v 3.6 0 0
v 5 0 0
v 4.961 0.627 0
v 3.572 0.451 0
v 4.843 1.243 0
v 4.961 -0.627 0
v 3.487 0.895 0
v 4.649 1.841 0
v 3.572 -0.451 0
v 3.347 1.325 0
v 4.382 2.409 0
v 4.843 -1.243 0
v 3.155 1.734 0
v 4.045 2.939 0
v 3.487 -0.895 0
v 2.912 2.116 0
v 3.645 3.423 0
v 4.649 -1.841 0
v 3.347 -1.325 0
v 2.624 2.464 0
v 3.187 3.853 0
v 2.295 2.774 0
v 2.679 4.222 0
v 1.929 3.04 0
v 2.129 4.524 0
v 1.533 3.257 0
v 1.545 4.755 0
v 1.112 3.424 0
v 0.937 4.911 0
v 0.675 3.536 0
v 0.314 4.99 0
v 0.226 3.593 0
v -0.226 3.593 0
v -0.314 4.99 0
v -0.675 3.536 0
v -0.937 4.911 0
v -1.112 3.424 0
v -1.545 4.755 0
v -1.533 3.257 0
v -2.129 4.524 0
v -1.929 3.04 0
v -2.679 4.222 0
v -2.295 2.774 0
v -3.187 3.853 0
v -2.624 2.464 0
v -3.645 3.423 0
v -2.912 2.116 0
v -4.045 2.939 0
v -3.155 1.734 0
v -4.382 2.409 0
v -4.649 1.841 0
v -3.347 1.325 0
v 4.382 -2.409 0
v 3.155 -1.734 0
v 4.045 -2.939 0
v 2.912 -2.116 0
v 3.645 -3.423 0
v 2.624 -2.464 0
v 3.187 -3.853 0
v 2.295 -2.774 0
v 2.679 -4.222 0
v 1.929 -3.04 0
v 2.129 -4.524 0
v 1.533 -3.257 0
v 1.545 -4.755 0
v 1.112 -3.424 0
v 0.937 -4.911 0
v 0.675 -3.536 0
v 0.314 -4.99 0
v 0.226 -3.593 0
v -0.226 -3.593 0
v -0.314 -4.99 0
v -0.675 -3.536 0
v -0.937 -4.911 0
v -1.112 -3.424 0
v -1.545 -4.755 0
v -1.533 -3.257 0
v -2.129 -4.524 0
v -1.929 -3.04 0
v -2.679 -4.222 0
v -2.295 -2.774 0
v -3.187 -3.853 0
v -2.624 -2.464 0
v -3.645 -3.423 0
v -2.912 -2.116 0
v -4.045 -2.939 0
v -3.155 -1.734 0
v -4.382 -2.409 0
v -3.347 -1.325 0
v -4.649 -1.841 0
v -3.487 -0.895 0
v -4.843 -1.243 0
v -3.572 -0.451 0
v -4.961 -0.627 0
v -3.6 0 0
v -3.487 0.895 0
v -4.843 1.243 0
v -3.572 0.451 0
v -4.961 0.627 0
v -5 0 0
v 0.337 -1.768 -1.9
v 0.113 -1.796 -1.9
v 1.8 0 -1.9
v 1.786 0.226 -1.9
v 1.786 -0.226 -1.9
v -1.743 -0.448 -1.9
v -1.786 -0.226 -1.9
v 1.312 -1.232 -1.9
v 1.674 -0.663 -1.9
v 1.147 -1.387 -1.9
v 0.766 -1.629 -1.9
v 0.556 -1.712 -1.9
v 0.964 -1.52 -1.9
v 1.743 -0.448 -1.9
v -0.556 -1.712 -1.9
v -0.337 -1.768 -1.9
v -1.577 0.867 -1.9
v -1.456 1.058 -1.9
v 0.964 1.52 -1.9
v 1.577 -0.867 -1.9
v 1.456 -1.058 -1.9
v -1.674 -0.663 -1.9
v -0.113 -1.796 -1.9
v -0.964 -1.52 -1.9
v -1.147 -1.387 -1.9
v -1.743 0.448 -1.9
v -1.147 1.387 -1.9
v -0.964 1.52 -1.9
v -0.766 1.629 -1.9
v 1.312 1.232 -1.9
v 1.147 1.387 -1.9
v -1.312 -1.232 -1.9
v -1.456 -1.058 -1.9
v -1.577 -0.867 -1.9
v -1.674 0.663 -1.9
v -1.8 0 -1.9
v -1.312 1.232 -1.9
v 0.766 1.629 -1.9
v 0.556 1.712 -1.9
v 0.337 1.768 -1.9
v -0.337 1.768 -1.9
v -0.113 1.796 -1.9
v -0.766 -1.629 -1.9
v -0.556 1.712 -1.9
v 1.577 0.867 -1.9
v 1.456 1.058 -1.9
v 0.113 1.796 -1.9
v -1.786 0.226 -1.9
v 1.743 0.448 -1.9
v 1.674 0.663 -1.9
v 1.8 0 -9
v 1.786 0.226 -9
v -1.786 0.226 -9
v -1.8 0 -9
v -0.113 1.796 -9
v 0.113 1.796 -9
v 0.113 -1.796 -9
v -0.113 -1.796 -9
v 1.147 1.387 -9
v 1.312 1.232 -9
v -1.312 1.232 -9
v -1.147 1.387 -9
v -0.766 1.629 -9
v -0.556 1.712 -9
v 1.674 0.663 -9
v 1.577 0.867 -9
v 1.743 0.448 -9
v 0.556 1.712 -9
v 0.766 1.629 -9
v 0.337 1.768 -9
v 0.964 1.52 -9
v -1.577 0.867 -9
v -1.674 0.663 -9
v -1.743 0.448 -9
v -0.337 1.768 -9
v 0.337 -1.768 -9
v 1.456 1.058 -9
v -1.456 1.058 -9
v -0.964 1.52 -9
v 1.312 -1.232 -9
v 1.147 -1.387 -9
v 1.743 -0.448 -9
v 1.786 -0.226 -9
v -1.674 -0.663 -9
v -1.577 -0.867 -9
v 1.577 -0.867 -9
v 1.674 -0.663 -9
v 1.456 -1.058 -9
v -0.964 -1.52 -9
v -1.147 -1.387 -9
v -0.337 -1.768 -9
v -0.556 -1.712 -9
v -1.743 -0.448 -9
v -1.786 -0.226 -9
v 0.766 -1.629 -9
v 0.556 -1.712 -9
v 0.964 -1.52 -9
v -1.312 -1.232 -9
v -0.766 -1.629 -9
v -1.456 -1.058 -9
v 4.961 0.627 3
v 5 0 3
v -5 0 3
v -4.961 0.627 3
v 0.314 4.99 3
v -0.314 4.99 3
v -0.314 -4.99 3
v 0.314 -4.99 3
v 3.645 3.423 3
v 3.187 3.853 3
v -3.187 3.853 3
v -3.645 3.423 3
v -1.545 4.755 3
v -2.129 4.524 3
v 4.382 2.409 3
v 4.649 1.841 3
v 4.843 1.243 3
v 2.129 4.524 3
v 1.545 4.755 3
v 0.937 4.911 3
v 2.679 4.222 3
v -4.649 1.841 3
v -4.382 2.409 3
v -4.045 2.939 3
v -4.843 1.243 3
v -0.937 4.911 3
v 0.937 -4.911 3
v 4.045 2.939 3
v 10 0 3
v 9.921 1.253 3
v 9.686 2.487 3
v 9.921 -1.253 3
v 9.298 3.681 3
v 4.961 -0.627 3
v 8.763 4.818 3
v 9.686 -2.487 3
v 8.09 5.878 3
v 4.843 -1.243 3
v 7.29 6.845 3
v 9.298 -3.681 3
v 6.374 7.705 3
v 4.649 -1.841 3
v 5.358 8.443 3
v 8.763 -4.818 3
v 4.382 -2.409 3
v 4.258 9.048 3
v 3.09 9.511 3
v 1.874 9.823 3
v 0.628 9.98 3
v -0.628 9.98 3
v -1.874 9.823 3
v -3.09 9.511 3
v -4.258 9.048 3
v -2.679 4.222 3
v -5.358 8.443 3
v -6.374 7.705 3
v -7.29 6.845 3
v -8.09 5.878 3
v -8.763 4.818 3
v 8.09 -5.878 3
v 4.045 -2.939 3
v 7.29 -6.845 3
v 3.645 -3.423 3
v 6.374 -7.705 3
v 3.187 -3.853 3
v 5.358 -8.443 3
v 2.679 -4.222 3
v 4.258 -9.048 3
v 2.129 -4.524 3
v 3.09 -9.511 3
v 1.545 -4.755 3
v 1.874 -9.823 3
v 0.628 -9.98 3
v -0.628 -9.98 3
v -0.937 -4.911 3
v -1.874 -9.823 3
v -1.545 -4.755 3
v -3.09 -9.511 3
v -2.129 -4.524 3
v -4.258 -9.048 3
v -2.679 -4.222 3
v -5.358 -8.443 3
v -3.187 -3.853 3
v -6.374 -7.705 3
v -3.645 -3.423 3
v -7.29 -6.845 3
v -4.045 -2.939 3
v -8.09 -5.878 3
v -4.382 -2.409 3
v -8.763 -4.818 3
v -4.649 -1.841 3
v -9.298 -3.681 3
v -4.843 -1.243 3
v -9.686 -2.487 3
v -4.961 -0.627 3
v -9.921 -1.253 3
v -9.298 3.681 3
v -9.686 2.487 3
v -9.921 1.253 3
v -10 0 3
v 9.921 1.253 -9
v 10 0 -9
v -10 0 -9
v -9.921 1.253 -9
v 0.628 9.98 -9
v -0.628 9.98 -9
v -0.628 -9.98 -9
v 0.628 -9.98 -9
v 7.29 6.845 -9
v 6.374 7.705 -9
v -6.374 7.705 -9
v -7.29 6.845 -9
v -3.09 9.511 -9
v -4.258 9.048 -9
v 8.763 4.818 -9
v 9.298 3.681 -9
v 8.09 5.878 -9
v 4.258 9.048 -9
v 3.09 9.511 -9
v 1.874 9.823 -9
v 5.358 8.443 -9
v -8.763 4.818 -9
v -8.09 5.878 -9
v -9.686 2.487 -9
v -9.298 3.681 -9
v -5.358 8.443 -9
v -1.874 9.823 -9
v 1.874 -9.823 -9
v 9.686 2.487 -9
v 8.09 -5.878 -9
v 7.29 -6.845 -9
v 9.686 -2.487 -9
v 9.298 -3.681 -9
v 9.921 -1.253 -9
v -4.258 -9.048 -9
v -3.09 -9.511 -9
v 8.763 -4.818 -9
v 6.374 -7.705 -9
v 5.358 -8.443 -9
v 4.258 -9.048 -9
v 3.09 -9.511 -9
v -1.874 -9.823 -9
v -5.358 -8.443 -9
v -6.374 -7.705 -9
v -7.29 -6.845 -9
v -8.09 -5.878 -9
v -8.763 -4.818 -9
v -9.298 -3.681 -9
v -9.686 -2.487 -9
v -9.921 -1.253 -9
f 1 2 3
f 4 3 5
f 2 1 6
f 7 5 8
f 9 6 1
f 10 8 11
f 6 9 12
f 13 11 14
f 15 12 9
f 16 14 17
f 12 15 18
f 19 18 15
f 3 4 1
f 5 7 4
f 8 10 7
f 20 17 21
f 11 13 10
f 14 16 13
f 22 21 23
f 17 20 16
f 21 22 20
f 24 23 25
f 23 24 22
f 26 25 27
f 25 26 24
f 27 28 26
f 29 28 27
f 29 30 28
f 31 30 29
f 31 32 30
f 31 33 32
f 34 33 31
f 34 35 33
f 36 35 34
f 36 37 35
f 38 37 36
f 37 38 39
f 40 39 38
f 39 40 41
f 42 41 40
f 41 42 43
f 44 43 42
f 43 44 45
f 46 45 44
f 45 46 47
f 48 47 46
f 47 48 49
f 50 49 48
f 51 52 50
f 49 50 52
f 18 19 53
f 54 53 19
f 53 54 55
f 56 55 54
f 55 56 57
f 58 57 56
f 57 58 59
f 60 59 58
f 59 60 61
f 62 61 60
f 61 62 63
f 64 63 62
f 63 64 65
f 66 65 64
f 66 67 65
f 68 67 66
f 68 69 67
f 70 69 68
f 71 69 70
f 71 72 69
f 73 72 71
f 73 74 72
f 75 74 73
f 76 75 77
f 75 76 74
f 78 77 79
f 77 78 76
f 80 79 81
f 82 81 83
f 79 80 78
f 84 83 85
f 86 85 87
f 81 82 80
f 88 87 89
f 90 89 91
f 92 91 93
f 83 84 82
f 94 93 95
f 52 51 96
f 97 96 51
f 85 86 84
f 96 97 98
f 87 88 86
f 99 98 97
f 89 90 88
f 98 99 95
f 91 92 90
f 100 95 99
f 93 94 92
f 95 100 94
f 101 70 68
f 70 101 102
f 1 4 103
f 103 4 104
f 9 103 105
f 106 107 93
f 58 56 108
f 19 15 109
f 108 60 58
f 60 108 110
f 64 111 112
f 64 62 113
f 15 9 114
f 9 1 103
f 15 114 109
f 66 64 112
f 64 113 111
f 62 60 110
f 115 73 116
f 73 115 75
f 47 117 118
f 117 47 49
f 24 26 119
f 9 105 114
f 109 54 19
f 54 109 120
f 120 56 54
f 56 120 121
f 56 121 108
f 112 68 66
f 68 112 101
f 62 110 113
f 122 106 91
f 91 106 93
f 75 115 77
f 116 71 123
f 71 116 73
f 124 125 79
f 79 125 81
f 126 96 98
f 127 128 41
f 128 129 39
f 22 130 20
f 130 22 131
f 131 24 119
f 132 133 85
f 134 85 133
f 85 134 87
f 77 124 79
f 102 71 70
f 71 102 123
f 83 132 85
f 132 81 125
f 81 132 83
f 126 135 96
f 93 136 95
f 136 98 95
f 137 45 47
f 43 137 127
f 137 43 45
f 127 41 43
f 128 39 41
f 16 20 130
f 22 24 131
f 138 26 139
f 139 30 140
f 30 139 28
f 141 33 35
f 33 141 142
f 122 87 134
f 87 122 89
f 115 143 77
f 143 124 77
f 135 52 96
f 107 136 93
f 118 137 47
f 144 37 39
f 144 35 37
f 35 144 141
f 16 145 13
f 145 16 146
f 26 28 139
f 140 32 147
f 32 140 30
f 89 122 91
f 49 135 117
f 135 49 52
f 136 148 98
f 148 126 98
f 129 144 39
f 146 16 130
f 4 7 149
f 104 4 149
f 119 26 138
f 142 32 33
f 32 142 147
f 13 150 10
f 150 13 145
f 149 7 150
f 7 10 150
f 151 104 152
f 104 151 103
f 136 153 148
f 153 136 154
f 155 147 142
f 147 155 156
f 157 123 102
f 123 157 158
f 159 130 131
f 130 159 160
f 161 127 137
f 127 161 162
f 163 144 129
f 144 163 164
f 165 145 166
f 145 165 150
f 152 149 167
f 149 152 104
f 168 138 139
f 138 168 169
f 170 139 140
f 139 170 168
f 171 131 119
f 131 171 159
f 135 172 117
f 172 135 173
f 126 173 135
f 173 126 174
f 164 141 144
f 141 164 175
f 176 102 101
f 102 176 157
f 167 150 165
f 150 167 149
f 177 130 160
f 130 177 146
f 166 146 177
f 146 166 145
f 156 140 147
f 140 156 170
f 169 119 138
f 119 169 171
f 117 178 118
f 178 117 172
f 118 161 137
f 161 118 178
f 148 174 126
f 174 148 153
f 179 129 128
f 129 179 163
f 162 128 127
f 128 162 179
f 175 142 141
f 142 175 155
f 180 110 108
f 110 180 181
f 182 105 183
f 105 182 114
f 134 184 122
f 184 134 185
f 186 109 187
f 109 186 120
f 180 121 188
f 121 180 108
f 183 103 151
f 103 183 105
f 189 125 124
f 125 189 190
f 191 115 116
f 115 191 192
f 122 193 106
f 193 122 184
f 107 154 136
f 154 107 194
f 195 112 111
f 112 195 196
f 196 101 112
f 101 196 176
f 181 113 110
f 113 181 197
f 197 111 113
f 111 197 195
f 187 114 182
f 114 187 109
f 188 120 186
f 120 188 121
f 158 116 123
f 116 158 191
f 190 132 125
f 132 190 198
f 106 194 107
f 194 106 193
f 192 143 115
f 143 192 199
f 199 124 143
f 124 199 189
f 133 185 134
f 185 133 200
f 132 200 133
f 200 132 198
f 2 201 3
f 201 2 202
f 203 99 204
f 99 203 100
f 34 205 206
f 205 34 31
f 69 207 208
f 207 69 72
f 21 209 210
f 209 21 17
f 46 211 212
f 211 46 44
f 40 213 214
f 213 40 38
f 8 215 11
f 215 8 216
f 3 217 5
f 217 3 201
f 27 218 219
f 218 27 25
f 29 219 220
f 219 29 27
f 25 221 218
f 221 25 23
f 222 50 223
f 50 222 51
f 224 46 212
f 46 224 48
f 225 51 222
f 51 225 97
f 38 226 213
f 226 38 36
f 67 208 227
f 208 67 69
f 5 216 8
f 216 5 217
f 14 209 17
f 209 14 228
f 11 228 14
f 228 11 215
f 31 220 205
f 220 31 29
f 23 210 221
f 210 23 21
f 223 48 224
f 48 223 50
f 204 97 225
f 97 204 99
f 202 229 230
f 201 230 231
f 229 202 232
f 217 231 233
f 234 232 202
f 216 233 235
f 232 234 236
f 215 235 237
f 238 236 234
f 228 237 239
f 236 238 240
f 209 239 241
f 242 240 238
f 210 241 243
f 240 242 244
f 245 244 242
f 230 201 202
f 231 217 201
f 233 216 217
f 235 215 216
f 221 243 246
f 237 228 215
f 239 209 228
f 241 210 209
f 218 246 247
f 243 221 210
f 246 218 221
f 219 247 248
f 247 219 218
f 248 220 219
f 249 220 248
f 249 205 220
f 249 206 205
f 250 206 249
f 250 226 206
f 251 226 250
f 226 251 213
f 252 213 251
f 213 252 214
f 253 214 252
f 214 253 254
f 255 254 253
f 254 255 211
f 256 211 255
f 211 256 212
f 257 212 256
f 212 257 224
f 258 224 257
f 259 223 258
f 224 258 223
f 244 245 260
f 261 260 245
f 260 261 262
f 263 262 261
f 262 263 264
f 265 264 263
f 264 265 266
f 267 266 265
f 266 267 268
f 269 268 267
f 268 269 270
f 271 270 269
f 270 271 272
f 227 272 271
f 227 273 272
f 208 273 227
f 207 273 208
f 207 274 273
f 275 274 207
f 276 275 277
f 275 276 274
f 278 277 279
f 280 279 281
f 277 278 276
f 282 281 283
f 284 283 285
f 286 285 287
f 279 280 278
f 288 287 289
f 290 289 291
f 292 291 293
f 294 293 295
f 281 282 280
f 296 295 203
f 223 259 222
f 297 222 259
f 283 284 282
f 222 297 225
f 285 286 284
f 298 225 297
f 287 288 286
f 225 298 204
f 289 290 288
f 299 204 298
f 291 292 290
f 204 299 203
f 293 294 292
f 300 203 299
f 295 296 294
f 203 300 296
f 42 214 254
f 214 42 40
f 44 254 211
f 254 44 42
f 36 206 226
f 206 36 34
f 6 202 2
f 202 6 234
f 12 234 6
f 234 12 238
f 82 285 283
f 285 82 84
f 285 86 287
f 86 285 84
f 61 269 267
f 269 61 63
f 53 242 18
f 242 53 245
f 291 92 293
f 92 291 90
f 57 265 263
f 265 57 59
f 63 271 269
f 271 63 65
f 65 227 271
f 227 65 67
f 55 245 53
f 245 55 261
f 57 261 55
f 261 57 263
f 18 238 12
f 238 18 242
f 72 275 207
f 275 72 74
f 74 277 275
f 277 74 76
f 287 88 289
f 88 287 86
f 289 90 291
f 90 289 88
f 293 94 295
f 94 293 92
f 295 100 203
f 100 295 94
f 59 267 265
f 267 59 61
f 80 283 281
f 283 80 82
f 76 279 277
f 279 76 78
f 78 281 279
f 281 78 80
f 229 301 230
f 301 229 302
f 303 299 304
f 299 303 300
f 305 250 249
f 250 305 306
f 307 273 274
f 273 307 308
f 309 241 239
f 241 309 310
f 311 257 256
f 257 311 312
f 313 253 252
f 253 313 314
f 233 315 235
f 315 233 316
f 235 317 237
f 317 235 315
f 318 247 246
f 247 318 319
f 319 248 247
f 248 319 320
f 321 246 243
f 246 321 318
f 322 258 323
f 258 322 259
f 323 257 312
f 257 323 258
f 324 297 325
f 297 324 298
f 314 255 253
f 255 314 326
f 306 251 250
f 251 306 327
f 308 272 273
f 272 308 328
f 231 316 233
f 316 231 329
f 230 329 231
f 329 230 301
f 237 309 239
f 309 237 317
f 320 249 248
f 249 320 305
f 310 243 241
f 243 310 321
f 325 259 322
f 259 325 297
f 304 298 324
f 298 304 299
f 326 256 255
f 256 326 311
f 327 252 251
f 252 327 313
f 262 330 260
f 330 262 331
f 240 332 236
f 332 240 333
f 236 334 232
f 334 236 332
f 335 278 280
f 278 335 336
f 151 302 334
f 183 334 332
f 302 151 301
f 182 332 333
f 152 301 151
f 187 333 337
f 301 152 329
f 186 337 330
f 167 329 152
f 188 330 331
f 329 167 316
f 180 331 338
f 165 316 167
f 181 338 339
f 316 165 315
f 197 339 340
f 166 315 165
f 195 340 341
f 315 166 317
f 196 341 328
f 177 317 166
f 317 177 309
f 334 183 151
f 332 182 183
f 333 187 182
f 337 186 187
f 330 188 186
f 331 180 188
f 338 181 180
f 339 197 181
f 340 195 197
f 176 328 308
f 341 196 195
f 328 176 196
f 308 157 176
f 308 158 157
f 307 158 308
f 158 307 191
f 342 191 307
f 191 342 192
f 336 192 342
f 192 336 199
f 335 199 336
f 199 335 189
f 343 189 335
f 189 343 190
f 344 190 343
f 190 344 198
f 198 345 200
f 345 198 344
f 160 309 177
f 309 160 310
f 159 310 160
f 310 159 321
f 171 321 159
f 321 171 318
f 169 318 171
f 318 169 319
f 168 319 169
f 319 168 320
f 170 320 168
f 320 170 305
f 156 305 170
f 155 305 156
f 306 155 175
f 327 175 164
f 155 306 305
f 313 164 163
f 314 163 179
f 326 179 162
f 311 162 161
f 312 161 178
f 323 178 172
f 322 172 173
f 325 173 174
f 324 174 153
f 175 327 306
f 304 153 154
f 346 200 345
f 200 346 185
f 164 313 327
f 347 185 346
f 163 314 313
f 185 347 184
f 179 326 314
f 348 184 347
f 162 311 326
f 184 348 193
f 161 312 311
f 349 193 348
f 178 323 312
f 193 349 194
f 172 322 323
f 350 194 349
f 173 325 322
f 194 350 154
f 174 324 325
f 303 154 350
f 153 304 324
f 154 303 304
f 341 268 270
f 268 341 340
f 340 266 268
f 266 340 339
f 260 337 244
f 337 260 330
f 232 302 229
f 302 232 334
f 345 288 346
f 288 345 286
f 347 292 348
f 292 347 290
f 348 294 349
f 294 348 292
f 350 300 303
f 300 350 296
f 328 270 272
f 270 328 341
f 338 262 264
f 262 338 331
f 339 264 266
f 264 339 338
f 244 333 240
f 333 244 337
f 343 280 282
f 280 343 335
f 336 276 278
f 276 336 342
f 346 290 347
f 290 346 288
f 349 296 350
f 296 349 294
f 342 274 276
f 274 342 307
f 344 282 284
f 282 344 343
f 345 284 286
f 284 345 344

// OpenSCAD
$fn = 50;


difference() {
	union() {
		translate(v = [0, 0, -9.0000000000]) {
			cylinder(h = 12, r = 10.0000000000);
		}
	}
	union() {
		translate(v = [0, 0, 0]) {
			rotate(a = [0, 0, 0]) {
				difference() {
					union() {
						translate(v = [0, 0, -12.0000000000]) {
							cylinder(h = 12, r = 1.5000000000);
						}
						translate(v = [0, 0, -1.9000000000]) {
							cylinder(h = 1.9000000000, r1 = 1.8000000000, r2 = 3.6000000000);
						}
						translate(v = [0, 0, -12.0000000000]) {
							cylinder(h = 12, r = 1.8000000000);
						}
						translate(v = [0, 0, -12.0000000000]) {
							cylinder(h = 12, r = 1.5000000000);
						}
					}
					union();
				}
			}
		}
		#cylinder(h = 3, r = 5.0000000000);
	}
}
